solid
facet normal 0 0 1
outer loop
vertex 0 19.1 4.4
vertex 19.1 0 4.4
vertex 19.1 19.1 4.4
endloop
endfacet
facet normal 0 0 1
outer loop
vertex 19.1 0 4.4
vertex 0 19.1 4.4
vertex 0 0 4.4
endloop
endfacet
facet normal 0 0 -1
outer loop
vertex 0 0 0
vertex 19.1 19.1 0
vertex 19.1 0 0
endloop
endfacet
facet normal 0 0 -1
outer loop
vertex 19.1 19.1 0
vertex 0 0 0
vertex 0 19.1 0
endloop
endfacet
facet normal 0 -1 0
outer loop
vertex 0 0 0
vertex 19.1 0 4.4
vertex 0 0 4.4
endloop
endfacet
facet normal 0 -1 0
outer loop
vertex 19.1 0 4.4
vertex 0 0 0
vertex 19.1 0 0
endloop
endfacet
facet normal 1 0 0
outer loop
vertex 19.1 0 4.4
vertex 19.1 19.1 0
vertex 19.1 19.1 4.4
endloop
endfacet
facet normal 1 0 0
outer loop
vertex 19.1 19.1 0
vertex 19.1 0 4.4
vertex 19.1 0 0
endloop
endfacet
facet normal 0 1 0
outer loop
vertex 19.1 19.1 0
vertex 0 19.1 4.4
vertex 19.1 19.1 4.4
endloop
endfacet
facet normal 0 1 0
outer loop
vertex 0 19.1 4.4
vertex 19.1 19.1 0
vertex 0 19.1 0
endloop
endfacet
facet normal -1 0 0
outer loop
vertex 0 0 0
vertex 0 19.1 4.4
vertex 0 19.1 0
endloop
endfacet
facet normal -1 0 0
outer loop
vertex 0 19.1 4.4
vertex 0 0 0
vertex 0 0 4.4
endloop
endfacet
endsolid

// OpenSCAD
/* Warning, this is a very basic generator with a lot of approximation 
input data : [PLCC, KBB, 19.1x19.1x4.4mm, 52, , A, C04-21289A]
generated by com.zoubworld.electronics.cad.model3d.Basic
Date : Sun Feb 15 10:50:49 CET 2026
*/

//body
color("black")
translate([0,0,0])
cube([19.1,19.1,4.4], center=false);
